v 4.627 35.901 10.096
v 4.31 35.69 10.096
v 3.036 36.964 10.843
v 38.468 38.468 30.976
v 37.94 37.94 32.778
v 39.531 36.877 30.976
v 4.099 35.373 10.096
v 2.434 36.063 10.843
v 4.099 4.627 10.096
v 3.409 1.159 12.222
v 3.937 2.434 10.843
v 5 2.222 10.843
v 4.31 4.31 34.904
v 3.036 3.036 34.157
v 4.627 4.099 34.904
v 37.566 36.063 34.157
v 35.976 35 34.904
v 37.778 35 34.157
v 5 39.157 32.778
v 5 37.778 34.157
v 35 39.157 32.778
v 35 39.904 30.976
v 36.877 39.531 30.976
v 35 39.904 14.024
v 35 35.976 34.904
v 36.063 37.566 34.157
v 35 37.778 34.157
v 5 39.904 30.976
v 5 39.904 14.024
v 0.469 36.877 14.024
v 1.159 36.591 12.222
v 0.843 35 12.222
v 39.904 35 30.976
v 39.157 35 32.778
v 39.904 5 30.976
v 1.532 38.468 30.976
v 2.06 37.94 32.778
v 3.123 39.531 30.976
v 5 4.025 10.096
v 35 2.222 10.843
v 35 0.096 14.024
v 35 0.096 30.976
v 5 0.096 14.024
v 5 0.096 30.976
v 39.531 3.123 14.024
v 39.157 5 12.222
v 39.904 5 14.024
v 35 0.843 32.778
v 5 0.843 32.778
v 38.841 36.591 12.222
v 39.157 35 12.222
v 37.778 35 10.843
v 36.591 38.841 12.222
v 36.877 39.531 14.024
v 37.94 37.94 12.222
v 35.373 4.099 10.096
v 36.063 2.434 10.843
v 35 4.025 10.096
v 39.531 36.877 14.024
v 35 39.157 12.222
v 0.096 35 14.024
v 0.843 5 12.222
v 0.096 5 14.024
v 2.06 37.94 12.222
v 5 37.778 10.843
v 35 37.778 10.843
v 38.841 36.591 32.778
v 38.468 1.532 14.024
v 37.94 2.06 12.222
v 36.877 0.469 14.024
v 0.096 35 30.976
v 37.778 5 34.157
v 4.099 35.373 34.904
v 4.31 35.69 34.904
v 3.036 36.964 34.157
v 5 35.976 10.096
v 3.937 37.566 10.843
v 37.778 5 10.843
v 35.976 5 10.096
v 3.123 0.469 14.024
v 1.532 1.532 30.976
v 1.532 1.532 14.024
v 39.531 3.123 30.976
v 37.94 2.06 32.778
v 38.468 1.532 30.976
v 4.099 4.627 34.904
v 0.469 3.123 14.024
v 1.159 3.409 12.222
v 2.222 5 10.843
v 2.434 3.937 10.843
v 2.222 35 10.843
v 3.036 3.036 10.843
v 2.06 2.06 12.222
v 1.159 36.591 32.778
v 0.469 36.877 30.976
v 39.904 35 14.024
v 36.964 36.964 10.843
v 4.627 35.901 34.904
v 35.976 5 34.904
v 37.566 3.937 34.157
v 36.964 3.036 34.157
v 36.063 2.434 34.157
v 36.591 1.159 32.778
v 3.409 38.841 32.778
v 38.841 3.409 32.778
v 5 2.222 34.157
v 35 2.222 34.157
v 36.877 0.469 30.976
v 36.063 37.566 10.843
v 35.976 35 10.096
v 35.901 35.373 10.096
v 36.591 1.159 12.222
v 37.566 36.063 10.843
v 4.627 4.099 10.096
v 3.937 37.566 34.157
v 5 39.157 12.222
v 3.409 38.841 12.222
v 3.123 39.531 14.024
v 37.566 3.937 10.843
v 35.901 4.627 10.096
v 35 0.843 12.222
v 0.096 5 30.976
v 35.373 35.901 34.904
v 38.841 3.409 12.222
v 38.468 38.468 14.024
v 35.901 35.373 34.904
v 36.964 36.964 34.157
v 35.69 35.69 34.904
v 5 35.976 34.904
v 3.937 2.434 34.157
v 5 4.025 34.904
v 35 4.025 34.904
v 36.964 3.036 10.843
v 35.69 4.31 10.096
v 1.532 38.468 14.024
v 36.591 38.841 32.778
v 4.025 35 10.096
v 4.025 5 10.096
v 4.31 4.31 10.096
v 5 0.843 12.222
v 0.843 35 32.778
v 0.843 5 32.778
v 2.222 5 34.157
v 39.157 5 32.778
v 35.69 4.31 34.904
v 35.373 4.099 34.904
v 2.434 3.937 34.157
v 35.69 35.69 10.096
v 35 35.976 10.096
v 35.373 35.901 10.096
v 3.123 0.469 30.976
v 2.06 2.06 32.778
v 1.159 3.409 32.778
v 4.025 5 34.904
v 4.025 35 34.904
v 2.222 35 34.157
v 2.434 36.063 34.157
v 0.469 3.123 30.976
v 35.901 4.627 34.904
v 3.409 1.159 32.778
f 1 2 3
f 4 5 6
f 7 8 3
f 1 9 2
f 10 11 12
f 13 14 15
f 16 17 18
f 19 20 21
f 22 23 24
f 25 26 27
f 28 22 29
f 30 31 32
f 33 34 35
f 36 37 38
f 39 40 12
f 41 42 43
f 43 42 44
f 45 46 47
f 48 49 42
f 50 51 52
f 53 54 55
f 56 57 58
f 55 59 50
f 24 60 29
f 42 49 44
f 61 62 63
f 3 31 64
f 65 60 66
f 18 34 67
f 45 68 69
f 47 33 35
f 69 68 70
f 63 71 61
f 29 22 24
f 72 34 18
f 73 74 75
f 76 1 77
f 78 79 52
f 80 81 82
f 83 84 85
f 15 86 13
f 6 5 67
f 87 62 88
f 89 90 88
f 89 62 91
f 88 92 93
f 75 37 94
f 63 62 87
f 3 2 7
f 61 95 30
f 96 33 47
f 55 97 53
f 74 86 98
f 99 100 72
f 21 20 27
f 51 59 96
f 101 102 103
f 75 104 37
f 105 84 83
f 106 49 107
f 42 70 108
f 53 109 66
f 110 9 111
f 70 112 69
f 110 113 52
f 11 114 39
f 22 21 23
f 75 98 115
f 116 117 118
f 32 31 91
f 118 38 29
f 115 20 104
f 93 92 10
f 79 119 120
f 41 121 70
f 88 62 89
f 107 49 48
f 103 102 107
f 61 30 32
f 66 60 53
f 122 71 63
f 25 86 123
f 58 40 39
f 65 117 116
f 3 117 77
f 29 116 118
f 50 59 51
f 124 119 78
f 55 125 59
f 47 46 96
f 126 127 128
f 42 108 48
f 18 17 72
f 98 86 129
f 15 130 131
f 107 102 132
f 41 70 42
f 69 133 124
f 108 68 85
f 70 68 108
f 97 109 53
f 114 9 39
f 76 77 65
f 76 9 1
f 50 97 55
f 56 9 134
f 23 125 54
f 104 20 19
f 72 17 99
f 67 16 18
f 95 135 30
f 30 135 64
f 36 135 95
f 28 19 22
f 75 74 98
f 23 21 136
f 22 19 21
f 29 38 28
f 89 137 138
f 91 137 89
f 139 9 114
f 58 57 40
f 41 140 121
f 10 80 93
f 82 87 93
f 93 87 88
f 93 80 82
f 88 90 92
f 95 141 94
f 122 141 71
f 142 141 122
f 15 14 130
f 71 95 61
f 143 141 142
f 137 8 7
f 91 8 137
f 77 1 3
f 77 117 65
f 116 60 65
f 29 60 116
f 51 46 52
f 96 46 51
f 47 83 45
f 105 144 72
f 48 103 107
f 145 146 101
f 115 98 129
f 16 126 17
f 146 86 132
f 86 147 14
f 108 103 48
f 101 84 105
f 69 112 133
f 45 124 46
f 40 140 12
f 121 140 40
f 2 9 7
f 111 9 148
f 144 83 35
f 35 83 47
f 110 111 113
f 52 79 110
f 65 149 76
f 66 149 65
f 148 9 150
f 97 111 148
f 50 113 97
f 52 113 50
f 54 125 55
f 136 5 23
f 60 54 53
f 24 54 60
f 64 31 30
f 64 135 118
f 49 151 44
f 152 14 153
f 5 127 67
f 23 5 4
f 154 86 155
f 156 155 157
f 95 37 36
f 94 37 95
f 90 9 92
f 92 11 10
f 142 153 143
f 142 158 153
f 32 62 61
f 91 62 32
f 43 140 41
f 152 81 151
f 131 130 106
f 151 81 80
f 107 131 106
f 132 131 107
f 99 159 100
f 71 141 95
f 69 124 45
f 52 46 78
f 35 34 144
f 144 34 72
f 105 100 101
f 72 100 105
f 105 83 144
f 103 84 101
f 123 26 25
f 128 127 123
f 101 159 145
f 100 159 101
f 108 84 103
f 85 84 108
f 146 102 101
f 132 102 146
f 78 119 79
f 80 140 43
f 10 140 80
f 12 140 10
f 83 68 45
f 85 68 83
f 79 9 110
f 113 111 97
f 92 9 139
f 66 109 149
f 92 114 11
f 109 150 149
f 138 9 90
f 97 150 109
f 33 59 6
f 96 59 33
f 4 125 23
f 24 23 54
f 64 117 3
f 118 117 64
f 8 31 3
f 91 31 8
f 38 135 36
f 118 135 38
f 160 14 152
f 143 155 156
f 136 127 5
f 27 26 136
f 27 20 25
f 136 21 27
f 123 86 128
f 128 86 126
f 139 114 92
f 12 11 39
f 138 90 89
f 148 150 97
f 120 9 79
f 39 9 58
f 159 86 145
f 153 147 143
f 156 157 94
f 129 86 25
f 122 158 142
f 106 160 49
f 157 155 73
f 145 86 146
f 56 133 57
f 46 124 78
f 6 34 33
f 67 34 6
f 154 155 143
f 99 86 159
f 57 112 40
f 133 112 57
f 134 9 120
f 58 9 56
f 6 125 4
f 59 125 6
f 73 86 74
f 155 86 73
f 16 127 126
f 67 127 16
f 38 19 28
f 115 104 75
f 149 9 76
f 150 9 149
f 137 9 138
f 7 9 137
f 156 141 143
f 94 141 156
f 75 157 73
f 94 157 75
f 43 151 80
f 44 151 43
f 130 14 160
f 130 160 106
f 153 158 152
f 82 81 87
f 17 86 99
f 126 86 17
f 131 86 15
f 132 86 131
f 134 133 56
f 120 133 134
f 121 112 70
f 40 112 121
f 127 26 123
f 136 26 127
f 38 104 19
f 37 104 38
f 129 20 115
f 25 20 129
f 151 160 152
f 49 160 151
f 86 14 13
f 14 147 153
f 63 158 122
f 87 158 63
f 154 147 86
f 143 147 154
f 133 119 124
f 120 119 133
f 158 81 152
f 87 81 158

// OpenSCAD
// Parameters
length = 40;
width = 40;
height = 20;
radius = 5;

// Rounded rectangular block module
module rounded_rectangular_block() {
    // Create a cube and round the top edges using Minkowski sum
    minkowski() {
        cube([length - 2*radius, width - 2*radius, height - radius], center = false);
        translate([0, 0, height - radius])
            sphere(r=radius);
    }
}

// Call the module
translate([radius, radius, 0])
    rounded_rectangular_block();
